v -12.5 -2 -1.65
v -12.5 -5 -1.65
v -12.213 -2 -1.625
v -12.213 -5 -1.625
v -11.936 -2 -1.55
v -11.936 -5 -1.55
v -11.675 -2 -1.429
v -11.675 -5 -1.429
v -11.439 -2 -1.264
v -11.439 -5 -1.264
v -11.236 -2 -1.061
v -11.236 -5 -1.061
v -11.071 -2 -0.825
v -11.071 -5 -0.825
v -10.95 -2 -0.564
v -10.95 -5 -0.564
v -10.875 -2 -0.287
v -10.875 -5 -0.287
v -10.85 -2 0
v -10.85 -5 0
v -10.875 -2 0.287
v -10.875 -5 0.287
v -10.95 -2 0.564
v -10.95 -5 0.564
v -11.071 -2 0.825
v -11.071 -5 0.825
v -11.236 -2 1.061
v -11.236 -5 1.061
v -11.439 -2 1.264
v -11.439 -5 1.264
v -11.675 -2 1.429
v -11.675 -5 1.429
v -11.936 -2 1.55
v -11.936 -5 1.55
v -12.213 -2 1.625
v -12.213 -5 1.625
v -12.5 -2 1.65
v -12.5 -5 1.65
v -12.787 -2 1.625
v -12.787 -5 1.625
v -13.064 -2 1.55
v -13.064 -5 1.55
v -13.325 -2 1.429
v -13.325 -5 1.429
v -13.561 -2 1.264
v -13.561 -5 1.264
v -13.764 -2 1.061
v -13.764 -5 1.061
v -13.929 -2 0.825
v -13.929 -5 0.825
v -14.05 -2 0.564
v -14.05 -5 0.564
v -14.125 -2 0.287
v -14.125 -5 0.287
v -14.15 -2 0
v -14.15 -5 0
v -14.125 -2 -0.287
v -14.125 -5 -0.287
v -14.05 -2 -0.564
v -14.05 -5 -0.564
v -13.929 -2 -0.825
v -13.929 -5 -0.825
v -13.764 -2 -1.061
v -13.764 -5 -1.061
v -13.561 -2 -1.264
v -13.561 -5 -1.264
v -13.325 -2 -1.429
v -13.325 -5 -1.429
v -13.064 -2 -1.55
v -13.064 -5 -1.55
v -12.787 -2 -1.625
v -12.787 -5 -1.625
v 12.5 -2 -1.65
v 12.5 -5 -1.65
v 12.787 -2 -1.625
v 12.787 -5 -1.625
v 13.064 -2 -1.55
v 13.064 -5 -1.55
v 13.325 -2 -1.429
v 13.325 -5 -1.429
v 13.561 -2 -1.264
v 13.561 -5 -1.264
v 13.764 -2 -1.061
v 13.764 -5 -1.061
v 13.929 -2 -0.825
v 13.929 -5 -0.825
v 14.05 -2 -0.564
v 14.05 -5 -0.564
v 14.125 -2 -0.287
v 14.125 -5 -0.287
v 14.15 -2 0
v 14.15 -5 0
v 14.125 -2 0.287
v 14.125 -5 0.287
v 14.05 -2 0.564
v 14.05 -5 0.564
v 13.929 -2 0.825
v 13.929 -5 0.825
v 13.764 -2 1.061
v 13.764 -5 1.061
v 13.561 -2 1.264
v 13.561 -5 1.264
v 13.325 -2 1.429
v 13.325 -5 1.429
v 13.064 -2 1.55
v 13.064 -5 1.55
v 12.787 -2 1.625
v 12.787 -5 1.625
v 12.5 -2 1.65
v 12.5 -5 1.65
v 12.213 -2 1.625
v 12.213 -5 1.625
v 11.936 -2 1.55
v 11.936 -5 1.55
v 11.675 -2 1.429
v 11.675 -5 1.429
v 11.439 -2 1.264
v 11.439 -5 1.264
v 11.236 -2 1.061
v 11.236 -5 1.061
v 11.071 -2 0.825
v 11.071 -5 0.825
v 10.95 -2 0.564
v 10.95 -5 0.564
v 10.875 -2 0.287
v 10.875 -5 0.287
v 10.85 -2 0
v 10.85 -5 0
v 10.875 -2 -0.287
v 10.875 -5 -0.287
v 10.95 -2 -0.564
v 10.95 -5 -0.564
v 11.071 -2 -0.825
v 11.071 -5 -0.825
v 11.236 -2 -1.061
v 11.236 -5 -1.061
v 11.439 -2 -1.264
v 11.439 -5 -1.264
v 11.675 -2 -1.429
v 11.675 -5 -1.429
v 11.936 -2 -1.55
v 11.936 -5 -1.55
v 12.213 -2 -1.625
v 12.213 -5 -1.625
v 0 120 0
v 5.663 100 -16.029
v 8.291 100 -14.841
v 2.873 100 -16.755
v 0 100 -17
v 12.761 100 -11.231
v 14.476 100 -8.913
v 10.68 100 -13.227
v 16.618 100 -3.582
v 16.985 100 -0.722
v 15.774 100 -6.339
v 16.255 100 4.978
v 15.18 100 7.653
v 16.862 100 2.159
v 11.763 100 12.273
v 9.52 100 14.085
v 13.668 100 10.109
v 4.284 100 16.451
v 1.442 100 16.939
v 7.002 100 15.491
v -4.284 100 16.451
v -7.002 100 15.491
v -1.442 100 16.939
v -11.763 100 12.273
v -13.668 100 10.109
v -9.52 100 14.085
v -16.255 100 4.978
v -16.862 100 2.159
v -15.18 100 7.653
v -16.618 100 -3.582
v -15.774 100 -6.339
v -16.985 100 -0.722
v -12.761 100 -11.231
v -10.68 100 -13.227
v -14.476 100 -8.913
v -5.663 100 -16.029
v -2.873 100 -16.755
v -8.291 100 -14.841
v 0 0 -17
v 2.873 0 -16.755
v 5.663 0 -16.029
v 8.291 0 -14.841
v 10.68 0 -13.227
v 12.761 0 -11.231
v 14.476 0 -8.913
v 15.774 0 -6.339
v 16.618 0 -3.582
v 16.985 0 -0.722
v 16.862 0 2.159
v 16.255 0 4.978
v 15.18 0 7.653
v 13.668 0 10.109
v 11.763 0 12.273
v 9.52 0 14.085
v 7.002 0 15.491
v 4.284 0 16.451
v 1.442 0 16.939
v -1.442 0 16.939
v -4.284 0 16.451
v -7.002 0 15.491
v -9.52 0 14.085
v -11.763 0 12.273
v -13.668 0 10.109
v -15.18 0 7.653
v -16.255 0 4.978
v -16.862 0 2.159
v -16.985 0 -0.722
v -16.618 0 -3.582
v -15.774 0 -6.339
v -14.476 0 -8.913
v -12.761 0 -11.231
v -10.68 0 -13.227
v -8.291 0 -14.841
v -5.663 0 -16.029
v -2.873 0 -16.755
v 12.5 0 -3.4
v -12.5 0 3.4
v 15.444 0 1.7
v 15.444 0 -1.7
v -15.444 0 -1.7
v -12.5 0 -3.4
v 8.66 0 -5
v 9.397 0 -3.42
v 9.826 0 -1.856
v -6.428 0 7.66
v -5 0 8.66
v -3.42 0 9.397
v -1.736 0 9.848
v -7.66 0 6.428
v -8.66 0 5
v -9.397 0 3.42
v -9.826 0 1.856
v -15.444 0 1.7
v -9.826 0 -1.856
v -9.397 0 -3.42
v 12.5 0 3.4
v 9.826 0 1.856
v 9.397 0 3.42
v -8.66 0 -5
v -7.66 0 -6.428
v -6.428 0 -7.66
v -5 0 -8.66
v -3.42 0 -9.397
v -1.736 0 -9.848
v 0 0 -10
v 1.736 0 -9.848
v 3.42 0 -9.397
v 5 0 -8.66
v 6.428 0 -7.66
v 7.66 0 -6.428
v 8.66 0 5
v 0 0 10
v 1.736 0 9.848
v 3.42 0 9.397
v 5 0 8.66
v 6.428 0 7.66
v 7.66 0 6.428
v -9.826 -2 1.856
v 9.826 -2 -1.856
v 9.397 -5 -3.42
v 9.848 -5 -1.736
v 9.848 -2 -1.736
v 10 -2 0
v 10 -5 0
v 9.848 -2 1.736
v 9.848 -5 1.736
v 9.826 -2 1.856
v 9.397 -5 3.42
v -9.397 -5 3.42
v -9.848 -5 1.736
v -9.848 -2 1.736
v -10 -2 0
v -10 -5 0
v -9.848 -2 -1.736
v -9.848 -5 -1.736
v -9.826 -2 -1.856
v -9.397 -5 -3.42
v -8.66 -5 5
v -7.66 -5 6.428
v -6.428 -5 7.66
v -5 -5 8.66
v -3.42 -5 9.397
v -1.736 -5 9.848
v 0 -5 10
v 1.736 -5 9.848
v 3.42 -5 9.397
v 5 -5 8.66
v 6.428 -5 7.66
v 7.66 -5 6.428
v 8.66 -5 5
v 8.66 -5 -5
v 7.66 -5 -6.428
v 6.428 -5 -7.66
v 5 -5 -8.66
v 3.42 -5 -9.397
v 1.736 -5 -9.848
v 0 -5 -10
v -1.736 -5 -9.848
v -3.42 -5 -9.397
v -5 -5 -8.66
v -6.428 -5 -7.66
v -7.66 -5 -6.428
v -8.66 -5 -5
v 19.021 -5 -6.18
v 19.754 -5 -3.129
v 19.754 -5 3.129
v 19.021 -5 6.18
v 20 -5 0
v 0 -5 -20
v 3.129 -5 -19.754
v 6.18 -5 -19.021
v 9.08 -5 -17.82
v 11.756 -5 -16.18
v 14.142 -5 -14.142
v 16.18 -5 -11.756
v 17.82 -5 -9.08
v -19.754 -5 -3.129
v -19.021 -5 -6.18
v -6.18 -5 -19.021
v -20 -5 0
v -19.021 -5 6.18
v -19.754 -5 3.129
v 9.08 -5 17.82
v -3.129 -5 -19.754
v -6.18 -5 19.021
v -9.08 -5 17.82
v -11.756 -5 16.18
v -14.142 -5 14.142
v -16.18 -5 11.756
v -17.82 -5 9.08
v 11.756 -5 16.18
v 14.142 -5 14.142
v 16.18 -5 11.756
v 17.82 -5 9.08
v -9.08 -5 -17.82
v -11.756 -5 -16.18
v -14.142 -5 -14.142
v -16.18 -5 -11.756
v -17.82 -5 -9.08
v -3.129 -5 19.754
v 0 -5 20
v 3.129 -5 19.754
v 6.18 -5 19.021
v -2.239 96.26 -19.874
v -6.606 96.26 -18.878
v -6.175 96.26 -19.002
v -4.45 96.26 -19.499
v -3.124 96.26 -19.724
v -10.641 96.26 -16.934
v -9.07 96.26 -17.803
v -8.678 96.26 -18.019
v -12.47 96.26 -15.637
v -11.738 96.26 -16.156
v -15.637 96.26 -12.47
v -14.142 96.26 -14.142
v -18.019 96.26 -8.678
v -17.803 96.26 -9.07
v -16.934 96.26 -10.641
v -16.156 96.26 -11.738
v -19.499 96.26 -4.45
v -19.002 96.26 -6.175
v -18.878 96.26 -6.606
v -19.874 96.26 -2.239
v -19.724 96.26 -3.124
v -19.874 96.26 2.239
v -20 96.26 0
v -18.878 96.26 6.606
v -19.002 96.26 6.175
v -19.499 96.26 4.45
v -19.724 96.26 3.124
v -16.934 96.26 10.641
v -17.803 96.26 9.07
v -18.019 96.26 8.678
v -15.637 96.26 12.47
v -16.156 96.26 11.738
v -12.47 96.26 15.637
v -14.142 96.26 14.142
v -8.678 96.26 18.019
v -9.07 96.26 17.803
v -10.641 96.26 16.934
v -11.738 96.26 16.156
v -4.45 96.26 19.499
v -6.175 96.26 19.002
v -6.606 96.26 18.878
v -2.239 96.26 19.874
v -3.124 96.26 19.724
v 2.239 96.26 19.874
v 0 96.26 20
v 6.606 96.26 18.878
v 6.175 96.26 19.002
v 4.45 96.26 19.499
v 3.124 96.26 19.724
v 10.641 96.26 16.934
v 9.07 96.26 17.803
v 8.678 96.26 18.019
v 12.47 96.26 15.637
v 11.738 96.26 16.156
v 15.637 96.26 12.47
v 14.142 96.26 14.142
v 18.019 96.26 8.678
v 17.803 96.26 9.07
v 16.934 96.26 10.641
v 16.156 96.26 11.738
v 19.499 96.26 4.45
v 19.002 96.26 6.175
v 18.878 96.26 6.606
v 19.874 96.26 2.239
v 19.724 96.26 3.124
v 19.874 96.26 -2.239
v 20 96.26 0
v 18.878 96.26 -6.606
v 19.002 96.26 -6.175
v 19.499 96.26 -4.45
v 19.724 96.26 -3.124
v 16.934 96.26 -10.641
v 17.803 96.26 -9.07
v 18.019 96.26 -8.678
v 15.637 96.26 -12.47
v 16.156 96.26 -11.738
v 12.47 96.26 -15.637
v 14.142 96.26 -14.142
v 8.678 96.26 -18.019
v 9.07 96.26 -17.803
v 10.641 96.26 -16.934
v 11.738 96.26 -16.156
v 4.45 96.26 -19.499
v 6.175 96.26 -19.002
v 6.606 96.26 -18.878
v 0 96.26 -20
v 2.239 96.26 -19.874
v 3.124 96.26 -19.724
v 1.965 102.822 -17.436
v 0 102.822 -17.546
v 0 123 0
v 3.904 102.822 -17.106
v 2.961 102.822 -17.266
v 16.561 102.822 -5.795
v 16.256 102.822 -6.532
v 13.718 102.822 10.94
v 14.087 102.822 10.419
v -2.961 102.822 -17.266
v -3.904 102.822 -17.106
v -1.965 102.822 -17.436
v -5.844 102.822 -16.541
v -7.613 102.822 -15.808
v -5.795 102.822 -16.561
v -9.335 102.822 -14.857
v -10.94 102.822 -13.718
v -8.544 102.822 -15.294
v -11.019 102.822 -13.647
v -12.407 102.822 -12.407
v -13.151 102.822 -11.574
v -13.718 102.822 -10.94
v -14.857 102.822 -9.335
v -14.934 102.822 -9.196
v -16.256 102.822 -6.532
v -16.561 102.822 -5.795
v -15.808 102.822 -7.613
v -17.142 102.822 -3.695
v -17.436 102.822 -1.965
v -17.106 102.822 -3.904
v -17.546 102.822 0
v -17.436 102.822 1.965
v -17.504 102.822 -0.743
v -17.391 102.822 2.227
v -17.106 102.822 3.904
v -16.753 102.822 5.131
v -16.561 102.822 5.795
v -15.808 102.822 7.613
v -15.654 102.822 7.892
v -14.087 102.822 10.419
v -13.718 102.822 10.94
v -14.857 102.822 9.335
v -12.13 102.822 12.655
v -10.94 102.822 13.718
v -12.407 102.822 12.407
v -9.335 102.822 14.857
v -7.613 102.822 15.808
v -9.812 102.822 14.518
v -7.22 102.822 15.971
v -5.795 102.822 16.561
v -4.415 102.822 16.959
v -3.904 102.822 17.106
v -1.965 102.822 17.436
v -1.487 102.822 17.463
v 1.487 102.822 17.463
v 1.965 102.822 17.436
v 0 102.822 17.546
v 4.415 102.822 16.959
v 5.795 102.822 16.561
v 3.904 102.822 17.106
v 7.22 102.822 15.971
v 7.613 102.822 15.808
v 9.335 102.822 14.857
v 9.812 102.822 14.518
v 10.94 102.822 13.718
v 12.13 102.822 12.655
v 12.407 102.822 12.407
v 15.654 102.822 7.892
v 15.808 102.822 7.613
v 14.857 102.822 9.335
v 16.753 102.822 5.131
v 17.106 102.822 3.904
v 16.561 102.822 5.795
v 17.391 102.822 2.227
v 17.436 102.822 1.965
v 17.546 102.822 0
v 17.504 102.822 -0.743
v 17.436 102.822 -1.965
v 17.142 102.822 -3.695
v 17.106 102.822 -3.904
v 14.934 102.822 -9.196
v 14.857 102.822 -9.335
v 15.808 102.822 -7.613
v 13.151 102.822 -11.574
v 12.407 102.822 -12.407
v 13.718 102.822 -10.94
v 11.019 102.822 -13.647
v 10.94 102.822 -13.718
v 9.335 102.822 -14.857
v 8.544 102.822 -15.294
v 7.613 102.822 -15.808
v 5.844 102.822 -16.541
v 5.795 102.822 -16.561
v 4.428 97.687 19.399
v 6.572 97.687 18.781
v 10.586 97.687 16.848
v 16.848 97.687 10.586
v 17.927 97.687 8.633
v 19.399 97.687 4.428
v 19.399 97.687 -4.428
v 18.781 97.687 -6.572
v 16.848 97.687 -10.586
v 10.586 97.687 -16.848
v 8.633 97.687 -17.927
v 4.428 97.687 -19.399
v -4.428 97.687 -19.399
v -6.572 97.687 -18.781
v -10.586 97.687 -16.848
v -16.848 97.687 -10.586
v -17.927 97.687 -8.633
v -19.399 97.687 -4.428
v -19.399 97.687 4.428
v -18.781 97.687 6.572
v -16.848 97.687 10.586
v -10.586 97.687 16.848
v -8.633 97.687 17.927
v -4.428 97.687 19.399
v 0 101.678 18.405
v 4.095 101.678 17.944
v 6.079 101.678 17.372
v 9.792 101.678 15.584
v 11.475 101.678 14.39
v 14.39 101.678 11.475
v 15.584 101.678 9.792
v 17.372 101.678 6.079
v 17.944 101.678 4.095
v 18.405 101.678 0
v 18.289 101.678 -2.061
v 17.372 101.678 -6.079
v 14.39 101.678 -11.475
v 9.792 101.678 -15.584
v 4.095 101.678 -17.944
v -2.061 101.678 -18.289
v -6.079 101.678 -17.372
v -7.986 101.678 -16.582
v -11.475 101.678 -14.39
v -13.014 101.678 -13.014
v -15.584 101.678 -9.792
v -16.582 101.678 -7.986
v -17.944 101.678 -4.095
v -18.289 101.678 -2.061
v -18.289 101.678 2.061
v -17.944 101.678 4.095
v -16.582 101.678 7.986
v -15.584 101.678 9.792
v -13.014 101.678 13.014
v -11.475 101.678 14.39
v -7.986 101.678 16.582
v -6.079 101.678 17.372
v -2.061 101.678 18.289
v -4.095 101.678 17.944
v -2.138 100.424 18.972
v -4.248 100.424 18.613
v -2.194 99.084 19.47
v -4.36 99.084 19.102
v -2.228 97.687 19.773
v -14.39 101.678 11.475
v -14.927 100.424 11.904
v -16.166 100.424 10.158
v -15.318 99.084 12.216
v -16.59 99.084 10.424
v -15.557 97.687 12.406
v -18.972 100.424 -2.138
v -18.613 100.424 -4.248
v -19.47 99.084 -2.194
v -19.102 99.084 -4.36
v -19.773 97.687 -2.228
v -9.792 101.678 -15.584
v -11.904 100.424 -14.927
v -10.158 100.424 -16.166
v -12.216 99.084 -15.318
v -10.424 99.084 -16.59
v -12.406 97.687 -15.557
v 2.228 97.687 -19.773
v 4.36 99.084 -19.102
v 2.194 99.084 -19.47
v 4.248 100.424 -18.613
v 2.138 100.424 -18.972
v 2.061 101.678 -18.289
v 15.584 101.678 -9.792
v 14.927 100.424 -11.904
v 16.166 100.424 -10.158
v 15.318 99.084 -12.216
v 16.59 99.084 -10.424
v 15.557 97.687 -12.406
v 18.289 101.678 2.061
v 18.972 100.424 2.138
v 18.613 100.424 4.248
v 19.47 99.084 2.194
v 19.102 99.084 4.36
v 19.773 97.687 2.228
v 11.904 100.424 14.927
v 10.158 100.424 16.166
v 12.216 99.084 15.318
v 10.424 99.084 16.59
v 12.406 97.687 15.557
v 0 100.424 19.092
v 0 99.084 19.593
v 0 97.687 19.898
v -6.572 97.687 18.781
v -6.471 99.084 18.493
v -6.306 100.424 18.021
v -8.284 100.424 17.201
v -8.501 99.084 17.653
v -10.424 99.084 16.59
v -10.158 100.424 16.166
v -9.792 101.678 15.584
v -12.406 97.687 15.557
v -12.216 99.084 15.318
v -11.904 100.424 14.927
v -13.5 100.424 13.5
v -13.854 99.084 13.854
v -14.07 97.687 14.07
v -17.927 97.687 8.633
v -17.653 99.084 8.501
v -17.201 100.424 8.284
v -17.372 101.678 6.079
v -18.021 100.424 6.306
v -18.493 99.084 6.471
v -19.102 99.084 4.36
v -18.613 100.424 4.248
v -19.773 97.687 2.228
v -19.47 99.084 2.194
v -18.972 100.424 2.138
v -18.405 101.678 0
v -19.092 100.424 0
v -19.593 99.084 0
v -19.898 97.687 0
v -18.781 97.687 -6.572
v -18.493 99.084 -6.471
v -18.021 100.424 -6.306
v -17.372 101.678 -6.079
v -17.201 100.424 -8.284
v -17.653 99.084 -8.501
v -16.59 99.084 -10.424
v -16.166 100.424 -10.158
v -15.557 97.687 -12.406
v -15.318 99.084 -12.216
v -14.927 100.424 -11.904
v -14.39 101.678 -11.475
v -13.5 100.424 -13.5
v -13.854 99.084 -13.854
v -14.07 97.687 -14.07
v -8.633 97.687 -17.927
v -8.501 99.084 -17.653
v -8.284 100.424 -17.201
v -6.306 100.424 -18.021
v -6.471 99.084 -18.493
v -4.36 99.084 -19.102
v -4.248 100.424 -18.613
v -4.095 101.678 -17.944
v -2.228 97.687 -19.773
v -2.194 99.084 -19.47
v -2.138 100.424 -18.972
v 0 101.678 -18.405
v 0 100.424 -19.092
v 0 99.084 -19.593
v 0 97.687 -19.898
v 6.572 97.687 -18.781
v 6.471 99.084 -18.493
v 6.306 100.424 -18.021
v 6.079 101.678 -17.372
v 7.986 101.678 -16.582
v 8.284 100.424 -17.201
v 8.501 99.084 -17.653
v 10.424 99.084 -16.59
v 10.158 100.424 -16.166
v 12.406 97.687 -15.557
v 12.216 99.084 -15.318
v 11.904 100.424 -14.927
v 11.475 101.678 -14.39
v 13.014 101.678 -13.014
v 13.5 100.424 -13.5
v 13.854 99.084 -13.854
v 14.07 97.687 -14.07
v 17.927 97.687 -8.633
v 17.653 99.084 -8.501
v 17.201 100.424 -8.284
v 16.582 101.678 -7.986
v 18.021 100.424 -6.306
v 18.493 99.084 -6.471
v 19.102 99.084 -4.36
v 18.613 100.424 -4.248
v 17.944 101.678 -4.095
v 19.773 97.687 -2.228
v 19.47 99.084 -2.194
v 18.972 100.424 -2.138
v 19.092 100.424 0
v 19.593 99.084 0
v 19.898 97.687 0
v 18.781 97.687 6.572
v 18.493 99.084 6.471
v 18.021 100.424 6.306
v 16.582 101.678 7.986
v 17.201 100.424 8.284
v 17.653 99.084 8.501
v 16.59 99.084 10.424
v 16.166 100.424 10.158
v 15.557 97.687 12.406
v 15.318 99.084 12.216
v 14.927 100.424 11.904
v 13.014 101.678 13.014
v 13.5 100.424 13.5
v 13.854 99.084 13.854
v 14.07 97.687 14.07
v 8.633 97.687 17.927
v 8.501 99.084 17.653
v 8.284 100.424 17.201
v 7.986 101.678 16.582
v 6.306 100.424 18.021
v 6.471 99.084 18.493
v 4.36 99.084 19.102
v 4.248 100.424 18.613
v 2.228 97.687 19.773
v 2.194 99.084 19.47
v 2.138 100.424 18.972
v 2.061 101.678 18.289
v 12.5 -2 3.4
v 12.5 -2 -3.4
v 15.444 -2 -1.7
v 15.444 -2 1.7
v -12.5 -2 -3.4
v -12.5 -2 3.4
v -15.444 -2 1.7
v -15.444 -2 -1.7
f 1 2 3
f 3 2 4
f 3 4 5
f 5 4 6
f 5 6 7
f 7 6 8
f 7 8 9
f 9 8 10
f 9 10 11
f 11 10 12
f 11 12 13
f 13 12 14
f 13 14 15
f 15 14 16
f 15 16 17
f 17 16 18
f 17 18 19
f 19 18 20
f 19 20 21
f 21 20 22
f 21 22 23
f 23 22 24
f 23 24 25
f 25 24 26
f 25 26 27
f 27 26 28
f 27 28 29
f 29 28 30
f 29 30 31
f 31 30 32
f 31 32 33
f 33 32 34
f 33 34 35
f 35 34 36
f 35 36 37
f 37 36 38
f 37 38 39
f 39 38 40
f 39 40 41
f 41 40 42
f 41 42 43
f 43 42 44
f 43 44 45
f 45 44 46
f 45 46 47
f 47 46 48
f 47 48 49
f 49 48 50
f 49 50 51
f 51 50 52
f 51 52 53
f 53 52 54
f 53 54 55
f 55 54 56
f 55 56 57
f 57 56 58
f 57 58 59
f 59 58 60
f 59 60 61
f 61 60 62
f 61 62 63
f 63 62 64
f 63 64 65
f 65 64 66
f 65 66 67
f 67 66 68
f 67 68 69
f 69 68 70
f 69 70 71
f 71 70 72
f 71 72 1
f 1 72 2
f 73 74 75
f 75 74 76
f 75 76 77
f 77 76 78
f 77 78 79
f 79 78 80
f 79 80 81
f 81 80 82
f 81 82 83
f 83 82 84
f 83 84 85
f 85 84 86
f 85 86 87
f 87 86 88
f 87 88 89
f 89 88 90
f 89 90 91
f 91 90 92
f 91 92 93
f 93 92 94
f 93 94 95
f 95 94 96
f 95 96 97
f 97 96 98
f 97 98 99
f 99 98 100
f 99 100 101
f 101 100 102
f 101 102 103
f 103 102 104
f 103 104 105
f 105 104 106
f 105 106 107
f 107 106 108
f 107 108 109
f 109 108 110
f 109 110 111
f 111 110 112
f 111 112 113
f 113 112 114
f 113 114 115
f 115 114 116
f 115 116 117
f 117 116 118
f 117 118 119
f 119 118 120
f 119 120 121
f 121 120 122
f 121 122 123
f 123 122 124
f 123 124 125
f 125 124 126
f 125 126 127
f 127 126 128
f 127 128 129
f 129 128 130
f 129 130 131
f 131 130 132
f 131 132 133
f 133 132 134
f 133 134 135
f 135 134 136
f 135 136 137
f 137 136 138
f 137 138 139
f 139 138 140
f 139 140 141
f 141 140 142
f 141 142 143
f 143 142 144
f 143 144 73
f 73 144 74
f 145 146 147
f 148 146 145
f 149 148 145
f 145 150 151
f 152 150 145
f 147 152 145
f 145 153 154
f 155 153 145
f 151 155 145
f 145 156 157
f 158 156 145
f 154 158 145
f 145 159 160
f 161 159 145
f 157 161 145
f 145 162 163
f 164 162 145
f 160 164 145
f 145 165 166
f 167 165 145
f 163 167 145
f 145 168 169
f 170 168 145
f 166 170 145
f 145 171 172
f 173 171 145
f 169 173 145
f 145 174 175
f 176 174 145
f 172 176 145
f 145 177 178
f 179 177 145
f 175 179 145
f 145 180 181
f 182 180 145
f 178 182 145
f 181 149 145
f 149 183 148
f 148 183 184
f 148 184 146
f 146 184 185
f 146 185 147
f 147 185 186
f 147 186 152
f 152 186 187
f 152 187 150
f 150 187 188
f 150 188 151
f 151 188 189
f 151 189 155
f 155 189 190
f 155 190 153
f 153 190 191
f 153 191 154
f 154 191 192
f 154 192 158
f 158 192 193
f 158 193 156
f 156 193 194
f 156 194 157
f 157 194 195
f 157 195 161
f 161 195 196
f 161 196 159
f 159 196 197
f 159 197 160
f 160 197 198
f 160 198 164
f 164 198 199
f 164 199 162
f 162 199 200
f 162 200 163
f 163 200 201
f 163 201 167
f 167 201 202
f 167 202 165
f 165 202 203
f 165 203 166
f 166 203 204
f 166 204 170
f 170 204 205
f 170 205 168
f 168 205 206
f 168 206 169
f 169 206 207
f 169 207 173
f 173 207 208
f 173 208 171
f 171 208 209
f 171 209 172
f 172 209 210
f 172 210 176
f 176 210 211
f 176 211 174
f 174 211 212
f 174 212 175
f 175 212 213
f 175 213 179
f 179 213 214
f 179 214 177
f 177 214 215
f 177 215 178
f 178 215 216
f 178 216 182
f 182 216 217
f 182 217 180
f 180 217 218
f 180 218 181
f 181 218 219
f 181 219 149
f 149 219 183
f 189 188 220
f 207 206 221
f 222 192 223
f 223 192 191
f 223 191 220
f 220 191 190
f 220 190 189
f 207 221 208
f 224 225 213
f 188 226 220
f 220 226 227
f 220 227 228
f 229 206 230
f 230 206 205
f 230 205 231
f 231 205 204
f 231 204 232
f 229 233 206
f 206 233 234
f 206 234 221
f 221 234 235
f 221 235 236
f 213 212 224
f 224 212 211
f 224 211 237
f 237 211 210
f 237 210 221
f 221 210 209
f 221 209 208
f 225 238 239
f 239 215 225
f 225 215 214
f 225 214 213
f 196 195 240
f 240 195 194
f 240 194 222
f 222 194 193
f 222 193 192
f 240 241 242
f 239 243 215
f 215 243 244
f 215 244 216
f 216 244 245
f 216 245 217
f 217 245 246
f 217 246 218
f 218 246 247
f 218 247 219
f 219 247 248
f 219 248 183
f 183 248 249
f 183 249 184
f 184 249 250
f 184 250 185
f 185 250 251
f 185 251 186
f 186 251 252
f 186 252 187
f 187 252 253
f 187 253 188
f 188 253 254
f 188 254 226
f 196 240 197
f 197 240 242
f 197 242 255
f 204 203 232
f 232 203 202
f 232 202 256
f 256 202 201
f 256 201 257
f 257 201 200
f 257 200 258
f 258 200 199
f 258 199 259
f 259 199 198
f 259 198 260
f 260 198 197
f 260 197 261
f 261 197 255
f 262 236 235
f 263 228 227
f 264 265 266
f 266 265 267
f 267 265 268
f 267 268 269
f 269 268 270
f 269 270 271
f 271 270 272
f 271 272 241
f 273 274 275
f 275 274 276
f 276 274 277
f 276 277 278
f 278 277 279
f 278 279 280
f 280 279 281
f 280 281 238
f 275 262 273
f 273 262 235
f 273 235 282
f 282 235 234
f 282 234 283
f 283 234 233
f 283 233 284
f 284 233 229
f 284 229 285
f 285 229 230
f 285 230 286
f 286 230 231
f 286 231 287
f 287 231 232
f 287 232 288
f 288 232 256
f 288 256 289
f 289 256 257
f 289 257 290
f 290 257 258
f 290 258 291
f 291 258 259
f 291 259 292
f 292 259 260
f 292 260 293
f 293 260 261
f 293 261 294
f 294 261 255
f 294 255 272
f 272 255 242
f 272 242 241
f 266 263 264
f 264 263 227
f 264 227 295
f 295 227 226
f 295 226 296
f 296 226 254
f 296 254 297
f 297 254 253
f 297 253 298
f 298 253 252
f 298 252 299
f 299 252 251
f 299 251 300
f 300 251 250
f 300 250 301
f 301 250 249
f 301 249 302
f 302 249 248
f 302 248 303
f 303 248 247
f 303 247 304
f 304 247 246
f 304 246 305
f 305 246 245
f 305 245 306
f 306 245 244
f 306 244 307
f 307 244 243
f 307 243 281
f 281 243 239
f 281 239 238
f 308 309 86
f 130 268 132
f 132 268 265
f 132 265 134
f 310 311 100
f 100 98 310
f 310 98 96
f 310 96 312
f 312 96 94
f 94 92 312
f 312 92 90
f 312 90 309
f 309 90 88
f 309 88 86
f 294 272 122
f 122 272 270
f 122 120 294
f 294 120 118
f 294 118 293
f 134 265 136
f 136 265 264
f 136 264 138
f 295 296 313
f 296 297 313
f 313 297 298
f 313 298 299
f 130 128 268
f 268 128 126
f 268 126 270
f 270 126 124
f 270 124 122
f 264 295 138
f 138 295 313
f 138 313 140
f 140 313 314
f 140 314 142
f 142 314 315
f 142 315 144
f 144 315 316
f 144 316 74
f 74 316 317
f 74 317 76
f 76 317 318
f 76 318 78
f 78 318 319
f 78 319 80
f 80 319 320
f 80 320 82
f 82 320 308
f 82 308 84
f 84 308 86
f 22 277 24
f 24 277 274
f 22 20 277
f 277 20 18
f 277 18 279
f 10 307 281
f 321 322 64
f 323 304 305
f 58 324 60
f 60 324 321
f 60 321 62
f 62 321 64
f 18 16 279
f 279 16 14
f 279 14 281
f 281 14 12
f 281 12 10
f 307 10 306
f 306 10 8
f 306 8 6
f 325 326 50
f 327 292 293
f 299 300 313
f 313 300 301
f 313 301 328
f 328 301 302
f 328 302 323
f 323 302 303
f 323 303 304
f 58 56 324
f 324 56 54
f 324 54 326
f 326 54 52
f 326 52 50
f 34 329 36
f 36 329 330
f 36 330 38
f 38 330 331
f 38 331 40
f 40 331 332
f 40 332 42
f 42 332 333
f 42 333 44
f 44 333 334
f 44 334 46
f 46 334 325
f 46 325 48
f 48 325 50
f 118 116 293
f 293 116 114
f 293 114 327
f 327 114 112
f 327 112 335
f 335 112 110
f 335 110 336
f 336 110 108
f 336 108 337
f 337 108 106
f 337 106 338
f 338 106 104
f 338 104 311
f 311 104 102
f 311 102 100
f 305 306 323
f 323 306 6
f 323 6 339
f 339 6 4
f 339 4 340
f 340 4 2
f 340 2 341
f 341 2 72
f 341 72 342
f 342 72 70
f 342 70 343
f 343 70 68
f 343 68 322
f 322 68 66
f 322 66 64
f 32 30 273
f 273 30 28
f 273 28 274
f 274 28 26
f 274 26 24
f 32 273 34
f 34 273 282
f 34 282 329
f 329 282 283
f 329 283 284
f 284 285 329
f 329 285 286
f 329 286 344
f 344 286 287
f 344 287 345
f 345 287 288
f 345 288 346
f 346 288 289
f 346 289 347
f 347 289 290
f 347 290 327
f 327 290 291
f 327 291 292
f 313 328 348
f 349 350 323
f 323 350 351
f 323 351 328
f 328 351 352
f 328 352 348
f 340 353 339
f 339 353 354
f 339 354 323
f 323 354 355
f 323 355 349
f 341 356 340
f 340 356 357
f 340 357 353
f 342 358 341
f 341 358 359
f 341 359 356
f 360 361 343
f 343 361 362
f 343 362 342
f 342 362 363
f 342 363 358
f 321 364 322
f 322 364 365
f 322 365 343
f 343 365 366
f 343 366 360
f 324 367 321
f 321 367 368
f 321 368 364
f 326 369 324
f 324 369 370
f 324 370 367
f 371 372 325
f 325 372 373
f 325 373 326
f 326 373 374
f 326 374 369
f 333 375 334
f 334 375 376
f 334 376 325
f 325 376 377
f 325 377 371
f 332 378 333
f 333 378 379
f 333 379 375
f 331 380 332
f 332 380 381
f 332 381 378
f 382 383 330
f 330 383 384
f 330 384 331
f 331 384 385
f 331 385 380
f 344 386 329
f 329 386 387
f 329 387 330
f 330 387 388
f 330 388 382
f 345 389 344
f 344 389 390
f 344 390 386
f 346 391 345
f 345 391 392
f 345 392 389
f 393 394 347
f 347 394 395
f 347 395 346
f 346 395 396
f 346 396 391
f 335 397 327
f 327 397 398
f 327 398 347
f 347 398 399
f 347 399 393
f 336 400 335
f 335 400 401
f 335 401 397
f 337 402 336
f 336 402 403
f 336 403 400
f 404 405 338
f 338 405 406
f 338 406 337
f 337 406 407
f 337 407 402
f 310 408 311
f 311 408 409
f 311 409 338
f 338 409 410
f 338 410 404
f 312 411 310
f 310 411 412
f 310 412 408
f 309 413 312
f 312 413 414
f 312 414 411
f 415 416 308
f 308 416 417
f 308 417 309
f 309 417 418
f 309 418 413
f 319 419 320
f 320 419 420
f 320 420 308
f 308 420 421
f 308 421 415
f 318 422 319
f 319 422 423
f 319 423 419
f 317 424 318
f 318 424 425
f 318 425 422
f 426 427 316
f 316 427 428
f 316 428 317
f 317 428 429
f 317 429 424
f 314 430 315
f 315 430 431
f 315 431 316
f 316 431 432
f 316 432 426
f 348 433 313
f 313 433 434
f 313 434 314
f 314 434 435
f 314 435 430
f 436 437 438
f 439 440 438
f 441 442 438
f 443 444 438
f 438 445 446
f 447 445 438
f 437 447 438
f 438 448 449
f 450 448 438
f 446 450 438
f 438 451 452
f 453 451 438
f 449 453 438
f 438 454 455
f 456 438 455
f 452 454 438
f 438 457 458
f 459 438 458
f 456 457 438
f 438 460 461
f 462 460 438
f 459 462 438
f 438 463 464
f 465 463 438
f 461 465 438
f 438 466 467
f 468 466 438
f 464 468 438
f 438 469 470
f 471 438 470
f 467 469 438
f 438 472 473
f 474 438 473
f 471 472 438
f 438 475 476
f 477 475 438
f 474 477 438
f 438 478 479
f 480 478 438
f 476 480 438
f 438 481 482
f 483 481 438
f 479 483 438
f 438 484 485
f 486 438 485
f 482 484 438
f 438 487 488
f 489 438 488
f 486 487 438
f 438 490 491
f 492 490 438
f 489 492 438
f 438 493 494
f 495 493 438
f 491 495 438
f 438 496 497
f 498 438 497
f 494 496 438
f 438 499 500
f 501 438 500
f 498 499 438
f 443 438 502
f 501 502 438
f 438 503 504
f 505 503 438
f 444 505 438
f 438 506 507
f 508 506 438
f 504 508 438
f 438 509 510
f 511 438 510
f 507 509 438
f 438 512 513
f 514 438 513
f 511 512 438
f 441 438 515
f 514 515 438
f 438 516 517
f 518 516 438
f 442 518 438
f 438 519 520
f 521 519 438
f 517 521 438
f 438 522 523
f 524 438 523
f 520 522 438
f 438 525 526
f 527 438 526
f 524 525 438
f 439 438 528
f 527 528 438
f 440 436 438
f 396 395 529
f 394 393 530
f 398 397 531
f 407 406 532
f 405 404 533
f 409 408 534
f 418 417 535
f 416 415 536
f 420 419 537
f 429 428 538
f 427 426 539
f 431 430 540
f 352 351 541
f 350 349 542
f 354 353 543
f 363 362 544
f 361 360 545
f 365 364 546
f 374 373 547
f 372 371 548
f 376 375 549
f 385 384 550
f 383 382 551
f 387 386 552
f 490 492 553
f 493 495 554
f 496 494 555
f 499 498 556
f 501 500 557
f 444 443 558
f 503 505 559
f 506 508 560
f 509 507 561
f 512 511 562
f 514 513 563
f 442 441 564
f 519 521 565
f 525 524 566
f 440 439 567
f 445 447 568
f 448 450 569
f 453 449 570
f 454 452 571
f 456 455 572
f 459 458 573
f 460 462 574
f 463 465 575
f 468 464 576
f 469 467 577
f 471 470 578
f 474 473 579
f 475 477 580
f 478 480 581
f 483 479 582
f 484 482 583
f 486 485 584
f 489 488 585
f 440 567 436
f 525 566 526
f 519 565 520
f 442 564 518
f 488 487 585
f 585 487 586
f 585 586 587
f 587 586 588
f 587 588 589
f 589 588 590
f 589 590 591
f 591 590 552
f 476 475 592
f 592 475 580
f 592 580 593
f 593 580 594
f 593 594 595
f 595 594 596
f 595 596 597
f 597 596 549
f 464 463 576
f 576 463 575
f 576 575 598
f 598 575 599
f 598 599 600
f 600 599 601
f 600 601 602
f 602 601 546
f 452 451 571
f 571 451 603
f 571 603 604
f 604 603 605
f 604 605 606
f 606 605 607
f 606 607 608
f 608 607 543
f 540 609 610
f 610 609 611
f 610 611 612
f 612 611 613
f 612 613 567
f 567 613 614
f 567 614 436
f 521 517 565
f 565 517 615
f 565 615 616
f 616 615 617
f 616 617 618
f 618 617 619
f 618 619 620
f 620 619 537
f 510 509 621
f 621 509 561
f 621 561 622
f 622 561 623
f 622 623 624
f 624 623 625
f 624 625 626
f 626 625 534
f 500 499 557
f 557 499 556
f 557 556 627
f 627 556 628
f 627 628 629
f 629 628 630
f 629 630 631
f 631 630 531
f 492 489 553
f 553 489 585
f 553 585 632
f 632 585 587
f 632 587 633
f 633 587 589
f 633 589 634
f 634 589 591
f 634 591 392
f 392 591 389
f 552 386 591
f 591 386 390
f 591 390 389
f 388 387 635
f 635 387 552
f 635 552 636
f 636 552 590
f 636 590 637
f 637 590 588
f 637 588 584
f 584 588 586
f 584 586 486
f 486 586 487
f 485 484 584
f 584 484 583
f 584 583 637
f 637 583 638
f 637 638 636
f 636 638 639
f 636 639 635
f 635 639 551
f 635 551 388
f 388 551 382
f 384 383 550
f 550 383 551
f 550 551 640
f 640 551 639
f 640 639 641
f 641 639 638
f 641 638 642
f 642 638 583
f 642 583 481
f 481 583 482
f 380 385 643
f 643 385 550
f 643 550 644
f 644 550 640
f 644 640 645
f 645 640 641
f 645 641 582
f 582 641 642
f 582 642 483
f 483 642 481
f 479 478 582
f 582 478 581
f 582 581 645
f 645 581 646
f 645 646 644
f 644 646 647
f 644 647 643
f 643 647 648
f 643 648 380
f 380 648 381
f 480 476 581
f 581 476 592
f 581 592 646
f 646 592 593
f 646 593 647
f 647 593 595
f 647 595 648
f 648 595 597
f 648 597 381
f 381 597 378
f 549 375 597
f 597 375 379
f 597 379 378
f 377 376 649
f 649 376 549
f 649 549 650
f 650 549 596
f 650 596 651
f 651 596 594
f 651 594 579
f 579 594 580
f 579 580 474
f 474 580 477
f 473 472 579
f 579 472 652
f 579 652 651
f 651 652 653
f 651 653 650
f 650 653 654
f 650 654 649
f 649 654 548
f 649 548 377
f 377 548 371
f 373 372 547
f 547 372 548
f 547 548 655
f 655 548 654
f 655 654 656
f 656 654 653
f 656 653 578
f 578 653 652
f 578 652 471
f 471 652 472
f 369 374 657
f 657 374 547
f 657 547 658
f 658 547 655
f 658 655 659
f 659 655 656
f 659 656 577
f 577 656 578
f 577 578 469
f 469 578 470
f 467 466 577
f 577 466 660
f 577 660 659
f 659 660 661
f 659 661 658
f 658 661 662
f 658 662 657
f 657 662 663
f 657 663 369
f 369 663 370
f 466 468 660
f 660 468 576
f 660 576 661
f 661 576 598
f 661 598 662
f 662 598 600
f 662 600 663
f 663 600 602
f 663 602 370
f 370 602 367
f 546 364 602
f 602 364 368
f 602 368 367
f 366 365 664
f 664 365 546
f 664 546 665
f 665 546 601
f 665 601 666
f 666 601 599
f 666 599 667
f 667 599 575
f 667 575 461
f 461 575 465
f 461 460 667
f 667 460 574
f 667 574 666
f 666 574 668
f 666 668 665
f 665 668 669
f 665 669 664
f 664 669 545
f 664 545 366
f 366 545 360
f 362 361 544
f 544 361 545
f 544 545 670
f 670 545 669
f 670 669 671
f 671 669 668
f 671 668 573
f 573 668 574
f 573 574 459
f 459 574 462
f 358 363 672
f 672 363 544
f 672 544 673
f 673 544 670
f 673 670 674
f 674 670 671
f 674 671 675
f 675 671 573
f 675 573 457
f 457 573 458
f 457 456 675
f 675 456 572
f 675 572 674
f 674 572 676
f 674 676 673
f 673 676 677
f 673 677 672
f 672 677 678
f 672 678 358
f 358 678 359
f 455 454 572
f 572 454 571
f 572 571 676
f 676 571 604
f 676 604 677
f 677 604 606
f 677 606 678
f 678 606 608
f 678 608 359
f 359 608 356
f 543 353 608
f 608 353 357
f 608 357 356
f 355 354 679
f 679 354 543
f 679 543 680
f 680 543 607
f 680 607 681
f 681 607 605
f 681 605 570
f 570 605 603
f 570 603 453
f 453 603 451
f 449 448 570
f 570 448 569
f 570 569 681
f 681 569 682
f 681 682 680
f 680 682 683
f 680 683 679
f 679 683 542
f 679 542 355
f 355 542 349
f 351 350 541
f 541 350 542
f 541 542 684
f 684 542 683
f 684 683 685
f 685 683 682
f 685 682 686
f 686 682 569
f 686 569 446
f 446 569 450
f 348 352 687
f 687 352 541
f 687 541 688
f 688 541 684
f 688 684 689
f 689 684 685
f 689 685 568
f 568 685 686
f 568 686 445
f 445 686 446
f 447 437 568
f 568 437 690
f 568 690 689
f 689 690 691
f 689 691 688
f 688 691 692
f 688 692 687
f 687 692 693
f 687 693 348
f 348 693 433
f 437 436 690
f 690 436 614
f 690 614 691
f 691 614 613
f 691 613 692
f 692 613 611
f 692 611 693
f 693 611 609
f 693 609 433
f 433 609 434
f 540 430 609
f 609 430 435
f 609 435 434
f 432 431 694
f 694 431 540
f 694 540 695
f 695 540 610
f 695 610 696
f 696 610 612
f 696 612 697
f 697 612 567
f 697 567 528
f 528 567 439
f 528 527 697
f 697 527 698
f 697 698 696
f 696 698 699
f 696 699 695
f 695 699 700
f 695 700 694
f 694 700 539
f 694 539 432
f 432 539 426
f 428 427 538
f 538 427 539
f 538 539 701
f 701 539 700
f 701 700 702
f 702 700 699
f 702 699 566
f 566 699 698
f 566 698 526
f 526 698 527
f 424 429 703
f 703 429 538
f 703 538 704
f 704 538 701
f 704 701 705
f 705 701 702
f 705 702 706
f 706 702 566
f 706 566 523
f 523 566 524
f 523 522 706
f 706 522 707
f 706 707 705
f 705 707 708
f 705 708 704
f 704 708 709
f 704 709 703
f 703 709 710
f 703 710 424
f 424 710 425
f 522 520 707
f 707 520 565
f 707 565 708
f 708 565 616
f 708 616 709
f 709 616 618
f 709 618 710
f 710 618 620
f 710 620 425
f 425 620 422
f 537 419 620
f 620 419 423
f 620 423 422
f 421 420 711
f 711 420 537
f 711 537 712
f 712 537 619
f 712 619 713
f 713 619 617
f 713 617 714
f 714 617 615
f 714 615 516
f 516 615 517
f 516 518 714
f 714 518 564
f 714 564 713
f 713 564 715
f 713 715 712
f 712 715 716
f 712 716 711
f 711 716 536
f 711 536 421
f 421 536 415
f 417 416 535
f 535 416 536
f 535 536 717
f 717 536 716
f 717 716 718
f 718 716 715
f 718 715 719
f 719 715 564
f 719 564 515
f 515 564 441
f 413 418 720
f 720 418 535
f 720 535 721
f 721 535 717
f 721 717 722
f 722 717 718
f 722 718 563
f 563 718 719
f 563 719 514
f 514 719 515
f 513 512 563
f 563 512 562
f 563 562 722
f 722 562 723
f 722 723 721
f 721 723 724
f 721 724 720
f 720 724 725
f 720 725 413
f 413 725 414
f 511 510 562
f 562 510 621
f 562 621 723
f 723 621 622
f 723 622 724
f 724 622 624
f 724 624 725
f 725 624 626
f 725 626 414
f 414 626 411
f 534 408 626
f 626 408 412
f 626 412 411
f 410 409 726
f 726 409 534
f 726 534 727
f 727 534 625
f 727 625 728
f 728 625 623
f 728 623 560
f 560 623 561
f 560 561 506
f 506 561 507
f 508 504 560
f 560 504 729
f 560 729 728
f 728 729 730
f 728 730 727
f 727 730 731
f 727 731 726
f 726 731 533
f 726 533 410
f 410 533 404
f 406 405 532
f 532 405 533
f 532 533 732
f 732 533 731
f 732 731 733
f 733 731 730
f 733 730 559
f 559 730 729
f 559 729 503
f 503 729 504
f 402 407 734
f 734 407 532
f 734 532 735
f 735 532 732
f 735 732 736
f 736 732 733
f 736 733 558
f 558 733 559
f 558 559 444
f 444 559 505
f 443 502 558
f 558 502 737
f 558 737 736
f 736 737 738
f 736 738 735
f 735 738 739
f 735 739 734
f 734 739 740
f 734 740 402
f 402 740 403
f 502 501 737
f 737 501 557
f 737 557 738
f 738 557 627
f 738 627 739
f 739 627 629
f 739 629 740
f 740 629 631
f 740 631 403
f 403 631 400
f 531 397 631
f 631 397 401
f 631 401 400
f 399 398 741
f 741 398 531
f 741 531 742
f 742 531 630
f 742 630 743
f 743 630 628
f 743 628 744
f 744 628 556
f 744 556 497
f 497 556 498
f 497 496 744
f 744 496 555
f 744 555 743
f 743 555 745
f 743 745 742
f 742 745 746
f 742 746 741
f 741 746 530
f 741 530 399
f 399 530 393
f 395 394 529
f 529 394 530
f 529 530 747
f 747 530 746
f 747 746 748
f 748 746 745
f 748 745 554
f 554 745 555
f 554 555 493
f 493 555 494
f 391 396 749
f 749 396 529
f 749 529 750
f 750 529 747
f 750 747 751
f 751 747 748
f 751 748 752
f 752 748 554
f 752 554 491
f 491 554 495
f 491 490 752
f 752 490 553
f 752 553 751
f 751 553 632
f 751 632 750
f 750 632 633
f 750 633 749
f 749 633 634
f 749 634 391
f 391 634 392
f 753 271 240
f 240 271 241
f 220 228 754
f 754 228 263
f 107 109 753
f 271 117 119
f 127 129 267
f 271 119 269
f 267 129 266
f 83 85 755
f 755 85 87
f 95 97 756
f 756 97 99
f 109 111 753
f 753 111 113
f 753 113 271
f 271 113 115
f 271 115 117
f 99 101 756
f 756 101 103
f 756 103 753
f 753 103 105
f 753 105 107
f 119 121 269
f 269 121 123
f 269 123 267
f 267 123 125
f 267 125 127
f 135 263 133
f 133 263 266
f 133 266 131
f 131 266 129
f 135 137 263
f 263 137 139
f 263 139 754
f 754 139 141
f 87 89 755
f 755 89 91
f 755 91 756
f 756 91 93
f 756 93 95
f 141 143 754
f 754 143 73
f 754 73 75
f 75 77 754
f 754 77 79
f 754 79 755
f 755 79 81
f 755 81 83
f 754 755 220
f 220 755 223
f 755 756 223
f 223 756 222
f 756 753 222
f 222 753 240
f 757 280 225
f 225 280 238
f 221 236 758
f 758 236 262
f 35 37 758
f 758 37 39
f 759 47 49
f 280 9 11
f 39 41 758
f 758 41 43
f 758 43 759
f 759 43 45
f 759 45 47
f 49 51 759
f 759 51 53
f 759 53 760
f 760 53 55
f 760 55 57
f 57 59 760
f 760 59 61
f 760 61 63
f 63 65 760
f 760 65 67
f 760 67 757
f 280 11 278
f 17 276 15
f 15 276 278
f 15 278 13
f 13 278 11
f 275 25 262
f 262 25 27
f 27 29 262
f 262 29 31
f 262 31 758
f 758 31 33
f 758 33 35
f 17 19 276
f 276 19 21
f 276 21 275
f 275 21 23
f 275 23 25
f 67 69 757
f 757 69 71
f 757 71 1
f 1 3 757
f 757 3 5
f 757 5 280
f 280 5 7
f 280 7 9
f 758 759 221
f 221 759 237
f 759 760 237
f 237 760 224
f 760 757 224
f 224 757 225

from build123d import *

# Parameters (mm, degrees)
REDONDEO1_R           = 10
CROQUIS4_R            = 1.65
CORTAR_EXTRUIR1_DEPTH = 5
CORTAR_EXTRUIR2_DEPTH = 2


with BuildPart() as part:
    # Croquis1 → Revolución3 (revolve)
    with BuildSketch(Plane.XY):
        Polygon((-20, -5), (-20, 100), (0, 123), (0, 120), (-17, 100), (-17, 0), (-10, 0), (-10, -5), align=None)
    revolve(axis=Axis((0, 0, 0), (0, 1, 0)))

    # Redondeo1
    redondeo1_edges = [part.edges().sort_by_distance(p)[0] for p in [
        (20, 100, 0),
    ]]
    fillet(redondeo1_edges, radius=REDONDEO1_R)

    # Croquis4 → Cortar-Extruir1 (cut)
    with BuildSketch(Plane.XZ.offset(5)):
        with Locations((12.5, 0)):
            Circle(CROQUIS4_R)
        with Locations((-12.5, 0)):
            Circle(CROQUIS4_R)
    extrude(amount=-CORTAR_EXTRUIR1_DEPTH, mode=Mode.SUBTRACT)

    # Croquis5 → Cortar-Extruir2 (cut)
    with BuildSketch(Plane(origin=(0, 0, 0), x_dir=(1, 0, 0), z_dir=(0, 1, 0))):
        Polygon((-12.5, 3.4), (-15.444486373, 1.7), (-15.444486373, -1.7), (-12.5, -3.4), (-9.555513627, -1.7), (-9.555513627, 1.7), align=None)
        Polygon((12.5, 3.4), (9.555513627, 1.7), (9.555513627, -1.7), (12.5, -3.4), (15.444486373, -1.7), (15.444486373, 1.7), align=None)
    extrude(amount=-CORTAR_EXTRUIR2_DEPTH, mode=Mode.SUBTRACT)


solid = part.part
